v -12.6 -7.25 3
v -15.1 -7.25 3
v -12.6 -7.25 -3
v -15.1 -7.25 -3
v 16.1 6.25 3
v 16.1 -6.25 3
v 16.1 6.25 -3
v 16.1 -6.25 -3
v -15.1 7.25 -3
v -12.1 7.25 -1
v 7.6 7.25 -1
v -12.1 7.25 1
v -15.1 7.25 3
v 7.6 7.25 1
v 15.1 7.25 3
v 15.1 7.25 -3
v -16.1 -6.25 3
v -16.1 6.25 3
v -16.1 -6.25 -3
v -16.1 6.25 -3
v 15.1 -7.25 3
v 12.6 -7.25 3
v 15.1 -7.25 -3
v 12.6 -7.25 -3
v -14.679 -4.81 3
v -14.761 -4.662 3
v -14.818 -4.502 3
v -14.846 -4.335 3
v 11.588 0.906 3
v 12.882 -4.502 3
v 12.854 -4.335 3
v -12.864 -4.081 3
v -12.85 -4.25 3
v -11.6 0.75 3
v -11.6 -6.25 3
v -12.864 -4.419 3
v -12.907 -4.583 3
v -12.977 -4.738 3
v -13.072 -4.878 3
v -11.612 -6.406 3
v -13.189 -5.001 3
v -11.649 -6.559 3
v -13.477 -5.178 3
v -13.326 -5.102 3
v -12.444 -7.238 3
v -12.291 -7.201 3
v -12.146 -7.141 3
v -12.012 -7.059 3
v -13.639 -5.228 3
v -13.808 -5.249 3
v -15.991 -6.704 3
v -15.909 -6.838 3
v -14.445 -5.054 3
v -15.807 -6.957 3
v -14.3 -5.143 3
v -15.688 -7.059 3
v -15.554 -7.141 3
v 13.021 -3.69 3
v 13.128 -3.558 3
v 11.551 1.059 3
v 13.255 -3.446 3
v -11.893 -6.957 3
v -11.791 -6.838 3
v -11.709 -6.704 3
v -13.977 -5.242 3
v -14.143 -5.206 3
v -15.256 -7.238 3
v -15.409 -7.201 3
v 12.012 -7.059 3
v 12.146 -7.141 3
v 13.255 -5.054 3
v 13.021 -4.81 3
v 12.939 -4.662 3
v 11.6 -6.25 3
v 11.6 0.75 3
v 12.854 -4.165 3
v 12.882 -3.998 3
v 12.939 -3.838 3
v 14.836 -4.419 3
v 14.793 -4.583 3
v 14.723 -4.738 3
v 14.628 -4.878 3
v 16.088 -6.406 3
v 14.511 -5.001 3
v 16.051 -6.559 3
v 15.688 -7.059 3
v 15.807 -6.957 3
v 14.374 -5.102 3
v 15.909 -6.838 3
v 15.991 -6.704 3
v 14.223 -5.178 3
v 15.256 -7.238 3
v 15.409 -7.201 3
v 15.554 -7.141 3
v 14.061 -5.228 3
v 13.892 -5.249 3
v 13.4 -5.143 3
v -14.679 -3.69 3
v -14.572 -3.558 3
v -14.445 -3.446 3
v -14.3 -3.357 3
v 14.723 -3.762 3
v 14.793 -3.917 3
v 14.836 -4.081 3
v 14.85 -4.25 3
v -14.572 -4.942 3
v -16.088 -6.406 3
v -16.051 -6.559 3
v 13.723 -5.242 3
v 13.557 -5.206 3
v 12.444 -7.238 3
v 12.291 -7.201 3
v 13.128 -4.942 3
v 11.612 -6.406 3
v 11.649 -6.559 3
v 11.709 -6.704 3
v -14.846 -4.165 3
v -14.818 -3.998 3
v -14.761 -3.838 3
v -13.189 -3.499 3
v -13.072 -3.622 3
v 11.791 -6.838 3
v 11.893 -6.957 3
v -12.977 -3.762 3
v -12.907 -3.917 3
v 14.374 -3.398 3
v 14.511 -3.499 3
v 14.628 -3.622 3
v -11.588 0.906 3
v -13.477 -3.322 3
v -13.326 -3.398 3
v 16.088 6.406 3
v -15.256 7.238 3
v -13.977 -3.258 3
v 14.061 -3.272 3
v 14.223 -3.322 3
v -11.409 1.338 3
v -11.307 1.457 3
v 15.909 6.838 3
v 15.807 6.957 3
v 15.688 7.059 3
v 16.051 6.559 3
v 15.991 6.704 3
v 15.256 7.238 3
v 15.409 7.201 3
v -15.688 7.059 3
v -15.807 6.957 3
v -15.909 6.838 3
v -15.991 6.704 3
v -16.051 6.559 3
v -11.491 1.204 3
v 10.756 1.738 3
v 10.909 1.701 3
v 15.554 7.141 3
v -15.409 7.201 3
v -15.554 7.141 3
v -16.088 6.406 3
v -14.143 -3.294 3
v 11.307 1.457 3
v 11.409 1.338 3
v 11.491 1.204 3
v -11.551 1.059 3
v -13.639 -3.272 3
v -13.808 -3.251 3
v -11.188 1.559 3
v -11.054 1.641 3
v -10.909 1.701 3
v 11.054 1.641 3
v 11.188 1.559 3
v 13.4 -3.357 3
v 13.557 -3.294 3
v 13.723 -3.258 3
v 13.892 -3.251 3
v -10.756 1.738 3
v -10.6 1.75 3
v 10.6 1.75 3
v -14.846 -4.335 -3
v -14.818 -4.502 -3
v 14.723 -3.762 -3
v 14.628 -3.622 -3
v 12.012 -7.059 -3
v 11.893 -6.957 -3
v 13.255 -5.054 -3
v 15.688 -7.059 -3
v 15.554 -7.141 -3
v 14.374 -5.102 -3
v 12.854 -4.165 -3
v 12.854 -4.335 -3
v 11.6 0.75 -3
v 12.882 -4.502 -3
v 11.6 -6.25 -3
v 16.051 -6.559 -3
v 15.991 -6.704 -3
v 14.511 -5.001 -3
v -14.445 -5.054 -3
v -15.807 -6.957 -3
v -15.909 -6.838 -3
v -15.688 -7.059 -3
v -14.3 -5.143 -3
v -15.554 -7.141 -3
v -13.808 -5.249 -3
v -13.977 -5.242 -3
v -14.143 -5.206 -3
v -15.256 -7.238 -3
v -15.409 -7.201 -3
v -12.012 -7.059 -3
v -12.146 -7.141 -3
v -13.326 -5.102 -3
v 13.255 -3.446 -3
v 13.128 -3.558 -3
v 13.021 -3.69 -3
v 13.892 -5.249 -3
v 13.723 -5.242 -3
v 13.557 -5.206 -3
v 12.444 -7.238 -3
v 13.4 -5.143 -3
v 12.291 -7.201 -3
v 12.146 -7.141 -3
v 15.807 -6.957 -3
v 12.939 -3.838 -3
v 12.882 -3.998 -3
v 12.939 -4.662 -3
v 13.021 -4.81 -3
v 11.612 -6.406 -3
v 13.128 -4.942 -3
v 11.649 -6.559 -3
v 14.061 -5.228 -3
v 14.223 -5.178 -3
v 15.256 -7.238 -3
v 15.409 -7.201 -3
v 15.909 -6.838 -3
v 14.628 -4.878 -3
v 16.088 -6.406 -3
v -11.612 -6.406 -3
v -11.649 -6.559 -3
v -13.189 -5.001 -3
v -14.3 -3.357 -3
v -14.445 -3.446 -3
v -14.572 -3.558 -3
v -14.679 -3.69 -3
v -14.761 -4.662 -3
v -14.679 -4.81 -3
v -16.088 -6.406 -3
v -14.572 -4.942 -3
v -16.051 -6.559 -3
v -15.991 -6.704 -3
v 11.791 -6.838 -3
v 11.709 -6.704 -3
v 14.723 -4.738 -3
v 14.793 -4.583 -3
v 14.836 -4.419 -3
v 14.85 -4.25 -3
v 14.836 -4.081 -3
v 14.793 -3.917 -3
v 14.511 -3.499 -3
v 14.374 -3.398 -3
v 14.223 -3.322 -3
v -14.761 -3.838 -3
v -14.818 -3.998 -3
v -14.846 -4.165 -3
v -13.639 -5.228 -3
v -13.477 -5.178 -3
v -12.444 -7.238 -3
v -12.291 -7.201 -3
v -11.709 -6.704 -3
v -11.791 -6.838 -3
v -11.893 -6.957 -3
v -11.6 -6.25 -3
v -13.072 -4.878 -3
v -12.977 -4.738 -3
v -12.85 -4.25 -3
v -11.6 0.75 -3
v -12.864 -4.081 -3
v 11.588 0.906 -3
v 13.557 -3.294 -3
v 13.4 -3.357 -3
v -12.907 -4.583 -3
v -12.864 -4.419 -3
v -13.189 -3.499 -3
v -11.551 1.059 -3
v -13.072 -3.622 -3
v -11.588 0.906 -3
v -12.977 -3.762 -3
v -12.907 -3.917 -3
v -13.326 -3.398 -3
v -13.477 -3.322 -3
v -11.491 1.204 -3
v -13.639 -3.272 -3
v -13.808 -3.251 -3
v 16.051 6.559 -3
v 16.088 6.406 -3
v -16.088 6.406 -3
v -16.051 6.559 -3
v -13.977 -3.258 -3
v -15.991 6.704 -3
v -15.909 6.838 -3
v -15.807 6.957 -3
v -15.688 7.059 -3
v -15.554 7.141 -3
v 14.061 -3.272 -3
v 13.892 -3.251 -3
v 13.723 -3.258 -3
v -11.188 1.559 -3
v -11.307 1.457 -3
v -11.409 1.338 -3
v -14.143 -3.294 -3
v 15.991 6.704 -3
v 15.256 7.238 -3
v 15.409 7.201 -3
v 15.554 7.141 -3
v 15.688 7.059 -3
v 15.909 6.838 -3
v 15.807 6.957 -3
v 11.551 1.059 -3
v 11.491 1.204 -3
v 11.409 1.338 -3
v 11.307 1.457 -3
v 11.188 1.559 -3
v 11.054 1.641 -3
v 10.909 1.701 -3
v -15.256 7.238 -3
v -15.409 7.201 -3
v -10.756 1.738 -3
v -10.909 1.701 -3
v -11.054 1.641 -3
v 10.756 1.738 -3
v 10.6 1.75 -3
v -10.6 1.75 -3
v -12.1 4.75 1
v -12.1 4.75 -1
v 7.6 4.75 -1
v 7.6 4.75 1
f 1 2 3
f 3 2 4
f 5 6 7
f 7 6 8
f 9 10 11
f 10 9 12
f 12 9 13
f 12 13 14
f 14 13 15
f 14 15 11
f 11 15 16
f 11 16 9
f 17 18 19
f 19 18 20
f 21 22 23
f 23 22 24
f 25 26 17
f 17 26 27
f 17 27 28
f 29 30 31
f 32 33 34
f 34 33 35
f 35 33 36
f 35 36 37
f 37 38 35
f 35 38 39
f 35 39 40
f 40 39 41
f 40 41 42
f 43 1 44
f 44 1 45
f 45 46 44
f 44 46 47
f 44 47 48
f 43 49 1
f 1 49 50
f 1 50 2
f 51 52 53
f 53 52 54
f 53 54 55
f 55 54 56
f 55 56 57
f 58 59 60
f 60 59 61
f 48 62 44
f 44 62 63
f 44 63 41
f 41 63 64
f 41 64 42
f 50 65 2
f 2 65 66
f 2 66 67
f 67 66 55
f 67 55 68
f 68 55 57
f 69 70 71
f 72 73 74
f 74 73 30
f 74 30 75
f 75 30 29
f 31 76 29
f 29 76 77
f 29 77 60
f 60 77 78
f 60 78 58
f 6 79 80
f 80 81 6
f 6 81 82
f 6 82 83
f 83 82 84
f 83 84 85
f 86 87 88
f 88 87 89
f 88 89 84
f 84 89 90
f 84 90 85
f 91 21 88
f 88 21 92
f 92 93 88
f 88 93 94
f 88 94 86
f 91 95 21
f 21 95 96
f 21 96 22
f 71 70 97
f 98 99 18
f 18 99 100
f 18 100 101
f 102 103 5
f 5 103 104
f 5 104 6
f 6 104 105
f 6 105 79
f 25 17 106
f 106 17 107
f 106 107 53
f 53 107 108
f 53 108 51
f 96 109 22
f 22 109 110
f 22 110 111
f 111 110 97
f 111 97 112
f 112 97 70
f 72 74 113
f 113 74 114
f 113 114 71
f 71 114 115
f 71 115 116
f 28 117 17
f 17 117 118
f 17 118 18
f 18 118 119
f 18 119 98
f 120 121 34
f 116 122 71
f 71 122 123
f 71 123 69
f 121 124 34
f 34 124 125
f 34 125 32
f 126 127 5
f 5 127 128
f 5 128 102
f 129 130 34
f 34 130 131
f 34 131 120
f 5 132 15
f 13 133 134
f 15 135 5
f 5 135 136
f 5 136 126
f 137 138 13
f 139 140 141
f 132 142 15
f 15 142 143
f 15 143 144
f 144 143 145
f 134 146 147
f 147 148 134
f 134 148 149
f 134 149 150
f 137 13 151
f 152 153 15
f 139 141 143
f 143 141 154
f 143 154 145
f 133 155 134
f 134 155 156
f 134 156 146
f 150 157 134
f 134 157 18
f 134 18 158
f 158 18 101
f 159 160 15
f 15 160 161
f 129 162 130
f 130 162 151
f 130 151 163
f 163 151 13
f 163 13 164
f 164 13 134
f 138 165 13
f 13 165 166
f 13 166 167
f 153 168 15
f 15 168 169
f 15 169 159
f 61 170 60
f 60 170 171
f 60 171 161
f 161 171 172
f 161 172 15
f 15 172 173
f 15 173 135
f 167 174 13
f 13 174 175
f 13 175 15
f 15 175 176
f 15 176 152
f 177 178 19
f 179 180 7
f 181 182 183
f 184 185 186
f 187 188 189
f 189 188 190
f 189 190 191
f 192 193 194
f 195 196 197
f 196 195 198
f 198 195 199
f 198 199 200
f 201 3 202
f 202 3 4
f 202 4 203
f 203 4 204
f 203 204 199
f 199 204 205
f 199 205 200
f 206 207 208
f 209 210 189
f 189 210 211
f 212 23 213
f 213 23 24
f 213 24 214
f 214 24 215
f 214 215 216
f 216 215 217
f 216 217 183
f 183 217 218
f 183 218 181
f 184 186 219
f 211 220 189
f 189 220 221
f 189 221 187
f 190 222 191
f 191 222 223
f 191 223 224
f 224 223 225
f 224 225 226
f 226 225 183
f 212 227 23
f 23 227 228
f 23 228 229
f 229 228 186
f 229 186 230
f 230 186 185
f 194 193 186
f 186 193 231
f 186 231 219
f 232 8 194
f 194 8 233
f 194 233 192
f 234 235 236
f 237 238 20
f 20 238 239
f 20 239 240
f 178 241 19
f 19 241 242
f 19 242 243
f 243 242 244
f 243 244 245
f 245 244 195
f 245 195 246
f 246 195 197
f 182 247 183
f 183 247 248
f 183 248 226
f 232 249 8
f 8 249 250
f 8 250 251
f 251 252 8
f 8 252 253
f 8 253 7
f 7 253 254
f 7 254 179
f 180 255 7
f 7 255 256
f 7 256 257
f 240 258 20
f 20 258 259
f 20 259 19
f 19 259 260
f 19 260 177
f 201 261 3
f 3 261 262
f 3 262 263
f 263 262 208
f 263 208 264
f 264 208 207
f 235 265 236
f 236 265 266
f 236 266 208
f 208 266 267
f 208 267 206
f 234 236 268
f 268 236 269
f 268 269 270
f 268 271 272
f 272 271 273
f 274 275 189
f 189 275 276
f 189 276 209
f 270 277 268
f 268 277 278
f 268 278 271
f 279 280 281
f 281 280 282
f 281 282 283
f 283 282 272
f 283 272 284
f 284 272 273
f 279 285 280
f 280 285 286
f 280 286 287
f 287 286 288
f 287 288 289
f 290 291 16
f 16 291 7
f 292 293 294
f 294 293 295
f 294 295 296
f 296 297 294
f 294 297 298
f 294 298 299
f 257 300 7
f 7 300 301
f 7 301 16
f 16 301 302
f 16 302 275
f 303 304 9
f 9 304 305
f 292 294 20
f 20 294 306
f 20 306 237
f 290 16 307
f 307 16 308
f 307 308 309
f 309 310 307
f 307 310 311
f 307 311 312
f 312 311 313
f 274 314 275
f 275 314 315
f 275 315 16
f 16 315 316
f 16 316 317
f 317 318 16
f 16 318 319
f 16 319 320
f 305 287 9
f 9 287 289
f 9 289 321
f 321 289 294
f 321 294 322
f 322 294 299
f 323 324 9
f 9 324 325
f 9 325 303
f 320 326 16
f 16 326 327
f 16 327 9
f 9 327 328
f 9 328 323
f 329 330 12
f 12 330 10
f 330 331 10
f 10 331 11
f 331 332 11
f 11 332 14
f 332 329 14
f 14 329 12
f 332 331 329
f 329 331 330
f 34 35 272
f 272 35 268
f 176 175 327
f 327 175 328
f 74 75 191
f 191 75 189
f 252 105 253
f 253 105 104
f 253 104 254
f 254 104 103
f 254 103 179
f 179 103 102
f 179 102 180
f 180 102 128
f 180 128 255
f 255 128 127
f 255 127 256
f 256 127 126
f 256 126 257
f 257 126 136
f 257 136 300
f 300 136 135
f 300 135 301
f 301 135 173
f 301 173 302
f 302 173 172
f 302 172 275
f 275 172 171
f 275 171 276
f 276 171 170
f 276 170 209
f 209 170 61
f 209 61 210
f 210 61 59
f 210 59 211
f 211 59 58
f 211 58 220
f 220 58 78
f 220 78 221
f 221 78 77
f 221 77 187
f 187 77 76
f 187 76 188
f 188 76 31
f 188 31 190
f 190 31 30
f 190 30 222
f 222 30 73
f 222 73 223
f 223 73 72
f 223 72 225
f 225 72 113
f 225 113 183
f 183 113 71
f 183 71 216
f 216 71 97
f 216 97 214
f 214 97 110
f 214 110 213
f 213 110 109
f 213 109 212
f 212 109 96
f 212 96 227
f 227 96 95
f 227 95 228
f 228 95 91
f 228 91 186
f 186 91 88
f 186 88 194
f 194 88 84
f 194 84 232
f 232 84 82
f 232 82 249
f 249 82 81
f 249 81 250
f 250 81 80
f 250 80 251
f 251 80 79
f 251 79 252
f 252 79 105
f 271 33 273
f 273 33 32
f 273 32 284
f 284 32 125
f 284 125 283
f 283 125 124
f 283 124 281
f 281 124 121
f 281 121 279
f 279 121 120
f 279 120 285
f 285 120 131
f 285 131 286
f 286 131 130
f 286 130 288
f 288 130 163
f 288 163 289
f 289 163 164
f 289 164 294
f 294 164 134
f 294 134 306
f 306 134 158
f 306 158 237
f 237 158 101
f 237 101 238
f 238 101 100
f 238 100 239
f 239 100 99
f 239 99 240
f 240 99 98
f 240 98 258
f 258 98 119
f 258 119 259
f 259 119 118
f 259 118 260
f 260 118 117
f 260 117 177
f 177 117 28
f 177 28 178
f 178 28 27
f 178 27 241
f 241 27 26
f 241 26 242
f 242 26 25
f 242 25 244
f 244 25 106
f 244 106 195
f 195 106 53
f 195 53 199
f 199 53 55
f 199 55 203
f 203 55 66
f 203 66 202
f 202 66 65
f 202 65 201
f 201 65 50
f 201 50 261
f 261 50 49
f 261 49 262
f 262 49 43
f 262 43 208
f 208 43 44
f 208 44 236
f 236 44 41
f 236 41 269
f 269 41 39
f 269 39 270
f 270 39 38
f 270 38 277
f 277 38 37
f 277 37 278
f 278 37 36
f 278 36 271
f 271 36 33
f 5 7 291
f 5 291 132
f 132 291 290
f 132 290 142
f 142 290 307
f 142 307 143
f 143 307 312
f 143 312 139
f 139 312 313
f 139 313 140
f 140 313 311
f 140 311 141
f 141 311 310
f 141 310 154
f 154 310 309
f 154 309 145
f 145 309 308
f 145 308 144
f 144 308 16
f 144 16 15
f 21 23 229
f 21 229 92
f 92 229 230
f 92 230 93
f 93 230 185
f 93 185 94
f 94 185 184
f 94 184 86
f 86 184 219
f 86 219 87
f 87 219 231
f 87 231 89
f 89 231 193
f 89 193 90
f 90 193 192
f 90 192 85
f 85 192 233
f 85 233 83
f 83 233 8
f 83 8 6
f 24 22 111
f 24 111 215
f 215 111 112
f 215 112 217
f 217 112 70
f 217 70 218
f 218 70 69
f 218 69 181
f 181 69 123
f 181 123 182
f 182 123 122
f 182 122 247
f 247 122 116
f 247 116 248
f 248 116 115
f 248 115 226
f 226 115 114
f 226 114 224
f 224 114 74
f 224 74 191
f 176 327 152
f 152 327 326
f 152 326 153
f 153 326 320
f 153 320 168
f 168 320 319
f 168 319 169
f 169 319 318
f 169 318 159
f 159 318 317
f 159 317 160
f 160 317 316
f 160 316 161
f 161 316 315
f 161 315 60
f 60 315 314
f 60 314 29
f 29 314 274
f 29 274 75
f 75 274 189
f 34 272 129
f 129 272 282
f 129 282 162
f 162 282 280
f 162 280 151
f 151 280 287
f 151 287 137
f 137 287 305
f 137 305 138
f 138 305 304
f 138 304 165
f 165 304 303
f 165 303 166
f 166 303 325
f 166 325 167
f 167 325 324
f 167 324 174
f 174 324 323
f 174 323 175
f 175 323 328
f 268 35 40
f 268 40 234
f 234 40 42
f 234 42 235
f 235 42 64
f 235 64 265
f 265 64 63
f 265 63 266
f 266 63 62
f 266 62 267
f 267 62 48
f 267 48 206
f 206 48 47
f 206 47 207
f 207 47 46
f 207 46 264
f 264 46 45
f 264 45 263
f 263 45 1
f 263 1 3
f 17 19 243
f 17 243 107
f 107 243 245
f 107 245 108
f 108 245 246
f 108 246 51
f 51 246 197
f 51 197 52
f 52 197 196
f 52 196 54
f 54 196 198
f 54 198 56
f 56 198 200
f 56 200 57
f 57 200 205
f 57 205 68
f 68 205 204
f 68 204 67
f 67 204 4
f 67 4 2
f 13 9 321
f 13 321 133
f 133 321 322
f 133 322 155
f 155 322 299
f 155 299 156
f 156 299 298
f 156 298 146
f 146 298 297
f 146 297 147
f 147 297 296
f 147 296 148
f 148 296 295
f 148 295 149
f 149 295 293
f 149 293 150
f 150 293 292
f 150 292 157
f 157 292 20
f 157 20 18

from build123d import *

# Parameters (mm, degrees)
SKETCH2_W           = 32.2
SKETCH2_H           = 14.5
BOSS_EXTRUDE1_DEPTH = 3
SKETCH3_W           = 19.7
SKETCH3_H           = 2
CUT_EXTRUDE1_DEPTH  = 2.5
SKETCH4_W           = 23.2
SKETCH4_H           = 9
CUT_EXTRUDE2_DEPTH  = 19.648659469
SKETCH5_R           = 1
CUT_EXTRUDE3_DEPTH  = 19.648659469
FILLET1_R           = 1


with BuildPart() as part:
    # Sketch2 → Boss-Extrude1 (new, symmetric)
    with BuildSketch(Plane.XY):
        Rectangle(SKETCH2_W, SKETCH2_H)
    extrude(amount=BOSS_EXTRUDE1_DEPTH, both=True)

    # Sketch3 → Cut-Extrude1 (cut)
    with BuildSketch(Plane(origin=(0, 7.25, 0), x_dir=(1, 0, 0), z_dir=(0, 1, 0))):
        with Locations((-2.25, 0)):
            Rectangle(SKETCH3_W, SKETCH3_H)
    extrude(amount=-CUT_EXTRUDE1_DEPTH, mode=Mode.SUBTRACT)

    # Sketch4 → Cut-Extrude2 (cut, through all)
    with BuildSketch(Plane.XY.offset(3)):
        with Locations((0, -2.75)):
            Rectangle(SKETCH4_W, SKETCH4_H)
    extrude(amount=-CUT_EXTRUDE2_DEPTH, mode=Mode.SUBTRACT)

    # Sketch5 → Cut-Extrude3 (cut, through all)
    with BuildSketch(Plane.XY.offset(3)):
        with Locations((-13.85, -4.25)):
            Circle(SKETCH5_R)
        with Locations((13.85, -4.25)):
            Circle(SKETCH5_R)
    extrude(amount=-CUT_EXTRUDE3_DEPTH, mode=Mode.SUBTRACT)

    # Fillet1
    fillet1_edges = [part.edges().sort_by_distance(p)[0] for p in [
        (-11.6, -7.25, 0),
        (-11.6, 1.75, 0),
        (11.6, 1.75, 0),
        (11.6, -7.25, 0),
        (16.1, -7.25, 0),
        (-16.1, -7.25, 0),
        (-16.1, 7.25, 0),
        (16.1, 7.25, 0),
    ]]
    fillet(fillet1_edges, radius=FILLET1_R)


solid = part.part
